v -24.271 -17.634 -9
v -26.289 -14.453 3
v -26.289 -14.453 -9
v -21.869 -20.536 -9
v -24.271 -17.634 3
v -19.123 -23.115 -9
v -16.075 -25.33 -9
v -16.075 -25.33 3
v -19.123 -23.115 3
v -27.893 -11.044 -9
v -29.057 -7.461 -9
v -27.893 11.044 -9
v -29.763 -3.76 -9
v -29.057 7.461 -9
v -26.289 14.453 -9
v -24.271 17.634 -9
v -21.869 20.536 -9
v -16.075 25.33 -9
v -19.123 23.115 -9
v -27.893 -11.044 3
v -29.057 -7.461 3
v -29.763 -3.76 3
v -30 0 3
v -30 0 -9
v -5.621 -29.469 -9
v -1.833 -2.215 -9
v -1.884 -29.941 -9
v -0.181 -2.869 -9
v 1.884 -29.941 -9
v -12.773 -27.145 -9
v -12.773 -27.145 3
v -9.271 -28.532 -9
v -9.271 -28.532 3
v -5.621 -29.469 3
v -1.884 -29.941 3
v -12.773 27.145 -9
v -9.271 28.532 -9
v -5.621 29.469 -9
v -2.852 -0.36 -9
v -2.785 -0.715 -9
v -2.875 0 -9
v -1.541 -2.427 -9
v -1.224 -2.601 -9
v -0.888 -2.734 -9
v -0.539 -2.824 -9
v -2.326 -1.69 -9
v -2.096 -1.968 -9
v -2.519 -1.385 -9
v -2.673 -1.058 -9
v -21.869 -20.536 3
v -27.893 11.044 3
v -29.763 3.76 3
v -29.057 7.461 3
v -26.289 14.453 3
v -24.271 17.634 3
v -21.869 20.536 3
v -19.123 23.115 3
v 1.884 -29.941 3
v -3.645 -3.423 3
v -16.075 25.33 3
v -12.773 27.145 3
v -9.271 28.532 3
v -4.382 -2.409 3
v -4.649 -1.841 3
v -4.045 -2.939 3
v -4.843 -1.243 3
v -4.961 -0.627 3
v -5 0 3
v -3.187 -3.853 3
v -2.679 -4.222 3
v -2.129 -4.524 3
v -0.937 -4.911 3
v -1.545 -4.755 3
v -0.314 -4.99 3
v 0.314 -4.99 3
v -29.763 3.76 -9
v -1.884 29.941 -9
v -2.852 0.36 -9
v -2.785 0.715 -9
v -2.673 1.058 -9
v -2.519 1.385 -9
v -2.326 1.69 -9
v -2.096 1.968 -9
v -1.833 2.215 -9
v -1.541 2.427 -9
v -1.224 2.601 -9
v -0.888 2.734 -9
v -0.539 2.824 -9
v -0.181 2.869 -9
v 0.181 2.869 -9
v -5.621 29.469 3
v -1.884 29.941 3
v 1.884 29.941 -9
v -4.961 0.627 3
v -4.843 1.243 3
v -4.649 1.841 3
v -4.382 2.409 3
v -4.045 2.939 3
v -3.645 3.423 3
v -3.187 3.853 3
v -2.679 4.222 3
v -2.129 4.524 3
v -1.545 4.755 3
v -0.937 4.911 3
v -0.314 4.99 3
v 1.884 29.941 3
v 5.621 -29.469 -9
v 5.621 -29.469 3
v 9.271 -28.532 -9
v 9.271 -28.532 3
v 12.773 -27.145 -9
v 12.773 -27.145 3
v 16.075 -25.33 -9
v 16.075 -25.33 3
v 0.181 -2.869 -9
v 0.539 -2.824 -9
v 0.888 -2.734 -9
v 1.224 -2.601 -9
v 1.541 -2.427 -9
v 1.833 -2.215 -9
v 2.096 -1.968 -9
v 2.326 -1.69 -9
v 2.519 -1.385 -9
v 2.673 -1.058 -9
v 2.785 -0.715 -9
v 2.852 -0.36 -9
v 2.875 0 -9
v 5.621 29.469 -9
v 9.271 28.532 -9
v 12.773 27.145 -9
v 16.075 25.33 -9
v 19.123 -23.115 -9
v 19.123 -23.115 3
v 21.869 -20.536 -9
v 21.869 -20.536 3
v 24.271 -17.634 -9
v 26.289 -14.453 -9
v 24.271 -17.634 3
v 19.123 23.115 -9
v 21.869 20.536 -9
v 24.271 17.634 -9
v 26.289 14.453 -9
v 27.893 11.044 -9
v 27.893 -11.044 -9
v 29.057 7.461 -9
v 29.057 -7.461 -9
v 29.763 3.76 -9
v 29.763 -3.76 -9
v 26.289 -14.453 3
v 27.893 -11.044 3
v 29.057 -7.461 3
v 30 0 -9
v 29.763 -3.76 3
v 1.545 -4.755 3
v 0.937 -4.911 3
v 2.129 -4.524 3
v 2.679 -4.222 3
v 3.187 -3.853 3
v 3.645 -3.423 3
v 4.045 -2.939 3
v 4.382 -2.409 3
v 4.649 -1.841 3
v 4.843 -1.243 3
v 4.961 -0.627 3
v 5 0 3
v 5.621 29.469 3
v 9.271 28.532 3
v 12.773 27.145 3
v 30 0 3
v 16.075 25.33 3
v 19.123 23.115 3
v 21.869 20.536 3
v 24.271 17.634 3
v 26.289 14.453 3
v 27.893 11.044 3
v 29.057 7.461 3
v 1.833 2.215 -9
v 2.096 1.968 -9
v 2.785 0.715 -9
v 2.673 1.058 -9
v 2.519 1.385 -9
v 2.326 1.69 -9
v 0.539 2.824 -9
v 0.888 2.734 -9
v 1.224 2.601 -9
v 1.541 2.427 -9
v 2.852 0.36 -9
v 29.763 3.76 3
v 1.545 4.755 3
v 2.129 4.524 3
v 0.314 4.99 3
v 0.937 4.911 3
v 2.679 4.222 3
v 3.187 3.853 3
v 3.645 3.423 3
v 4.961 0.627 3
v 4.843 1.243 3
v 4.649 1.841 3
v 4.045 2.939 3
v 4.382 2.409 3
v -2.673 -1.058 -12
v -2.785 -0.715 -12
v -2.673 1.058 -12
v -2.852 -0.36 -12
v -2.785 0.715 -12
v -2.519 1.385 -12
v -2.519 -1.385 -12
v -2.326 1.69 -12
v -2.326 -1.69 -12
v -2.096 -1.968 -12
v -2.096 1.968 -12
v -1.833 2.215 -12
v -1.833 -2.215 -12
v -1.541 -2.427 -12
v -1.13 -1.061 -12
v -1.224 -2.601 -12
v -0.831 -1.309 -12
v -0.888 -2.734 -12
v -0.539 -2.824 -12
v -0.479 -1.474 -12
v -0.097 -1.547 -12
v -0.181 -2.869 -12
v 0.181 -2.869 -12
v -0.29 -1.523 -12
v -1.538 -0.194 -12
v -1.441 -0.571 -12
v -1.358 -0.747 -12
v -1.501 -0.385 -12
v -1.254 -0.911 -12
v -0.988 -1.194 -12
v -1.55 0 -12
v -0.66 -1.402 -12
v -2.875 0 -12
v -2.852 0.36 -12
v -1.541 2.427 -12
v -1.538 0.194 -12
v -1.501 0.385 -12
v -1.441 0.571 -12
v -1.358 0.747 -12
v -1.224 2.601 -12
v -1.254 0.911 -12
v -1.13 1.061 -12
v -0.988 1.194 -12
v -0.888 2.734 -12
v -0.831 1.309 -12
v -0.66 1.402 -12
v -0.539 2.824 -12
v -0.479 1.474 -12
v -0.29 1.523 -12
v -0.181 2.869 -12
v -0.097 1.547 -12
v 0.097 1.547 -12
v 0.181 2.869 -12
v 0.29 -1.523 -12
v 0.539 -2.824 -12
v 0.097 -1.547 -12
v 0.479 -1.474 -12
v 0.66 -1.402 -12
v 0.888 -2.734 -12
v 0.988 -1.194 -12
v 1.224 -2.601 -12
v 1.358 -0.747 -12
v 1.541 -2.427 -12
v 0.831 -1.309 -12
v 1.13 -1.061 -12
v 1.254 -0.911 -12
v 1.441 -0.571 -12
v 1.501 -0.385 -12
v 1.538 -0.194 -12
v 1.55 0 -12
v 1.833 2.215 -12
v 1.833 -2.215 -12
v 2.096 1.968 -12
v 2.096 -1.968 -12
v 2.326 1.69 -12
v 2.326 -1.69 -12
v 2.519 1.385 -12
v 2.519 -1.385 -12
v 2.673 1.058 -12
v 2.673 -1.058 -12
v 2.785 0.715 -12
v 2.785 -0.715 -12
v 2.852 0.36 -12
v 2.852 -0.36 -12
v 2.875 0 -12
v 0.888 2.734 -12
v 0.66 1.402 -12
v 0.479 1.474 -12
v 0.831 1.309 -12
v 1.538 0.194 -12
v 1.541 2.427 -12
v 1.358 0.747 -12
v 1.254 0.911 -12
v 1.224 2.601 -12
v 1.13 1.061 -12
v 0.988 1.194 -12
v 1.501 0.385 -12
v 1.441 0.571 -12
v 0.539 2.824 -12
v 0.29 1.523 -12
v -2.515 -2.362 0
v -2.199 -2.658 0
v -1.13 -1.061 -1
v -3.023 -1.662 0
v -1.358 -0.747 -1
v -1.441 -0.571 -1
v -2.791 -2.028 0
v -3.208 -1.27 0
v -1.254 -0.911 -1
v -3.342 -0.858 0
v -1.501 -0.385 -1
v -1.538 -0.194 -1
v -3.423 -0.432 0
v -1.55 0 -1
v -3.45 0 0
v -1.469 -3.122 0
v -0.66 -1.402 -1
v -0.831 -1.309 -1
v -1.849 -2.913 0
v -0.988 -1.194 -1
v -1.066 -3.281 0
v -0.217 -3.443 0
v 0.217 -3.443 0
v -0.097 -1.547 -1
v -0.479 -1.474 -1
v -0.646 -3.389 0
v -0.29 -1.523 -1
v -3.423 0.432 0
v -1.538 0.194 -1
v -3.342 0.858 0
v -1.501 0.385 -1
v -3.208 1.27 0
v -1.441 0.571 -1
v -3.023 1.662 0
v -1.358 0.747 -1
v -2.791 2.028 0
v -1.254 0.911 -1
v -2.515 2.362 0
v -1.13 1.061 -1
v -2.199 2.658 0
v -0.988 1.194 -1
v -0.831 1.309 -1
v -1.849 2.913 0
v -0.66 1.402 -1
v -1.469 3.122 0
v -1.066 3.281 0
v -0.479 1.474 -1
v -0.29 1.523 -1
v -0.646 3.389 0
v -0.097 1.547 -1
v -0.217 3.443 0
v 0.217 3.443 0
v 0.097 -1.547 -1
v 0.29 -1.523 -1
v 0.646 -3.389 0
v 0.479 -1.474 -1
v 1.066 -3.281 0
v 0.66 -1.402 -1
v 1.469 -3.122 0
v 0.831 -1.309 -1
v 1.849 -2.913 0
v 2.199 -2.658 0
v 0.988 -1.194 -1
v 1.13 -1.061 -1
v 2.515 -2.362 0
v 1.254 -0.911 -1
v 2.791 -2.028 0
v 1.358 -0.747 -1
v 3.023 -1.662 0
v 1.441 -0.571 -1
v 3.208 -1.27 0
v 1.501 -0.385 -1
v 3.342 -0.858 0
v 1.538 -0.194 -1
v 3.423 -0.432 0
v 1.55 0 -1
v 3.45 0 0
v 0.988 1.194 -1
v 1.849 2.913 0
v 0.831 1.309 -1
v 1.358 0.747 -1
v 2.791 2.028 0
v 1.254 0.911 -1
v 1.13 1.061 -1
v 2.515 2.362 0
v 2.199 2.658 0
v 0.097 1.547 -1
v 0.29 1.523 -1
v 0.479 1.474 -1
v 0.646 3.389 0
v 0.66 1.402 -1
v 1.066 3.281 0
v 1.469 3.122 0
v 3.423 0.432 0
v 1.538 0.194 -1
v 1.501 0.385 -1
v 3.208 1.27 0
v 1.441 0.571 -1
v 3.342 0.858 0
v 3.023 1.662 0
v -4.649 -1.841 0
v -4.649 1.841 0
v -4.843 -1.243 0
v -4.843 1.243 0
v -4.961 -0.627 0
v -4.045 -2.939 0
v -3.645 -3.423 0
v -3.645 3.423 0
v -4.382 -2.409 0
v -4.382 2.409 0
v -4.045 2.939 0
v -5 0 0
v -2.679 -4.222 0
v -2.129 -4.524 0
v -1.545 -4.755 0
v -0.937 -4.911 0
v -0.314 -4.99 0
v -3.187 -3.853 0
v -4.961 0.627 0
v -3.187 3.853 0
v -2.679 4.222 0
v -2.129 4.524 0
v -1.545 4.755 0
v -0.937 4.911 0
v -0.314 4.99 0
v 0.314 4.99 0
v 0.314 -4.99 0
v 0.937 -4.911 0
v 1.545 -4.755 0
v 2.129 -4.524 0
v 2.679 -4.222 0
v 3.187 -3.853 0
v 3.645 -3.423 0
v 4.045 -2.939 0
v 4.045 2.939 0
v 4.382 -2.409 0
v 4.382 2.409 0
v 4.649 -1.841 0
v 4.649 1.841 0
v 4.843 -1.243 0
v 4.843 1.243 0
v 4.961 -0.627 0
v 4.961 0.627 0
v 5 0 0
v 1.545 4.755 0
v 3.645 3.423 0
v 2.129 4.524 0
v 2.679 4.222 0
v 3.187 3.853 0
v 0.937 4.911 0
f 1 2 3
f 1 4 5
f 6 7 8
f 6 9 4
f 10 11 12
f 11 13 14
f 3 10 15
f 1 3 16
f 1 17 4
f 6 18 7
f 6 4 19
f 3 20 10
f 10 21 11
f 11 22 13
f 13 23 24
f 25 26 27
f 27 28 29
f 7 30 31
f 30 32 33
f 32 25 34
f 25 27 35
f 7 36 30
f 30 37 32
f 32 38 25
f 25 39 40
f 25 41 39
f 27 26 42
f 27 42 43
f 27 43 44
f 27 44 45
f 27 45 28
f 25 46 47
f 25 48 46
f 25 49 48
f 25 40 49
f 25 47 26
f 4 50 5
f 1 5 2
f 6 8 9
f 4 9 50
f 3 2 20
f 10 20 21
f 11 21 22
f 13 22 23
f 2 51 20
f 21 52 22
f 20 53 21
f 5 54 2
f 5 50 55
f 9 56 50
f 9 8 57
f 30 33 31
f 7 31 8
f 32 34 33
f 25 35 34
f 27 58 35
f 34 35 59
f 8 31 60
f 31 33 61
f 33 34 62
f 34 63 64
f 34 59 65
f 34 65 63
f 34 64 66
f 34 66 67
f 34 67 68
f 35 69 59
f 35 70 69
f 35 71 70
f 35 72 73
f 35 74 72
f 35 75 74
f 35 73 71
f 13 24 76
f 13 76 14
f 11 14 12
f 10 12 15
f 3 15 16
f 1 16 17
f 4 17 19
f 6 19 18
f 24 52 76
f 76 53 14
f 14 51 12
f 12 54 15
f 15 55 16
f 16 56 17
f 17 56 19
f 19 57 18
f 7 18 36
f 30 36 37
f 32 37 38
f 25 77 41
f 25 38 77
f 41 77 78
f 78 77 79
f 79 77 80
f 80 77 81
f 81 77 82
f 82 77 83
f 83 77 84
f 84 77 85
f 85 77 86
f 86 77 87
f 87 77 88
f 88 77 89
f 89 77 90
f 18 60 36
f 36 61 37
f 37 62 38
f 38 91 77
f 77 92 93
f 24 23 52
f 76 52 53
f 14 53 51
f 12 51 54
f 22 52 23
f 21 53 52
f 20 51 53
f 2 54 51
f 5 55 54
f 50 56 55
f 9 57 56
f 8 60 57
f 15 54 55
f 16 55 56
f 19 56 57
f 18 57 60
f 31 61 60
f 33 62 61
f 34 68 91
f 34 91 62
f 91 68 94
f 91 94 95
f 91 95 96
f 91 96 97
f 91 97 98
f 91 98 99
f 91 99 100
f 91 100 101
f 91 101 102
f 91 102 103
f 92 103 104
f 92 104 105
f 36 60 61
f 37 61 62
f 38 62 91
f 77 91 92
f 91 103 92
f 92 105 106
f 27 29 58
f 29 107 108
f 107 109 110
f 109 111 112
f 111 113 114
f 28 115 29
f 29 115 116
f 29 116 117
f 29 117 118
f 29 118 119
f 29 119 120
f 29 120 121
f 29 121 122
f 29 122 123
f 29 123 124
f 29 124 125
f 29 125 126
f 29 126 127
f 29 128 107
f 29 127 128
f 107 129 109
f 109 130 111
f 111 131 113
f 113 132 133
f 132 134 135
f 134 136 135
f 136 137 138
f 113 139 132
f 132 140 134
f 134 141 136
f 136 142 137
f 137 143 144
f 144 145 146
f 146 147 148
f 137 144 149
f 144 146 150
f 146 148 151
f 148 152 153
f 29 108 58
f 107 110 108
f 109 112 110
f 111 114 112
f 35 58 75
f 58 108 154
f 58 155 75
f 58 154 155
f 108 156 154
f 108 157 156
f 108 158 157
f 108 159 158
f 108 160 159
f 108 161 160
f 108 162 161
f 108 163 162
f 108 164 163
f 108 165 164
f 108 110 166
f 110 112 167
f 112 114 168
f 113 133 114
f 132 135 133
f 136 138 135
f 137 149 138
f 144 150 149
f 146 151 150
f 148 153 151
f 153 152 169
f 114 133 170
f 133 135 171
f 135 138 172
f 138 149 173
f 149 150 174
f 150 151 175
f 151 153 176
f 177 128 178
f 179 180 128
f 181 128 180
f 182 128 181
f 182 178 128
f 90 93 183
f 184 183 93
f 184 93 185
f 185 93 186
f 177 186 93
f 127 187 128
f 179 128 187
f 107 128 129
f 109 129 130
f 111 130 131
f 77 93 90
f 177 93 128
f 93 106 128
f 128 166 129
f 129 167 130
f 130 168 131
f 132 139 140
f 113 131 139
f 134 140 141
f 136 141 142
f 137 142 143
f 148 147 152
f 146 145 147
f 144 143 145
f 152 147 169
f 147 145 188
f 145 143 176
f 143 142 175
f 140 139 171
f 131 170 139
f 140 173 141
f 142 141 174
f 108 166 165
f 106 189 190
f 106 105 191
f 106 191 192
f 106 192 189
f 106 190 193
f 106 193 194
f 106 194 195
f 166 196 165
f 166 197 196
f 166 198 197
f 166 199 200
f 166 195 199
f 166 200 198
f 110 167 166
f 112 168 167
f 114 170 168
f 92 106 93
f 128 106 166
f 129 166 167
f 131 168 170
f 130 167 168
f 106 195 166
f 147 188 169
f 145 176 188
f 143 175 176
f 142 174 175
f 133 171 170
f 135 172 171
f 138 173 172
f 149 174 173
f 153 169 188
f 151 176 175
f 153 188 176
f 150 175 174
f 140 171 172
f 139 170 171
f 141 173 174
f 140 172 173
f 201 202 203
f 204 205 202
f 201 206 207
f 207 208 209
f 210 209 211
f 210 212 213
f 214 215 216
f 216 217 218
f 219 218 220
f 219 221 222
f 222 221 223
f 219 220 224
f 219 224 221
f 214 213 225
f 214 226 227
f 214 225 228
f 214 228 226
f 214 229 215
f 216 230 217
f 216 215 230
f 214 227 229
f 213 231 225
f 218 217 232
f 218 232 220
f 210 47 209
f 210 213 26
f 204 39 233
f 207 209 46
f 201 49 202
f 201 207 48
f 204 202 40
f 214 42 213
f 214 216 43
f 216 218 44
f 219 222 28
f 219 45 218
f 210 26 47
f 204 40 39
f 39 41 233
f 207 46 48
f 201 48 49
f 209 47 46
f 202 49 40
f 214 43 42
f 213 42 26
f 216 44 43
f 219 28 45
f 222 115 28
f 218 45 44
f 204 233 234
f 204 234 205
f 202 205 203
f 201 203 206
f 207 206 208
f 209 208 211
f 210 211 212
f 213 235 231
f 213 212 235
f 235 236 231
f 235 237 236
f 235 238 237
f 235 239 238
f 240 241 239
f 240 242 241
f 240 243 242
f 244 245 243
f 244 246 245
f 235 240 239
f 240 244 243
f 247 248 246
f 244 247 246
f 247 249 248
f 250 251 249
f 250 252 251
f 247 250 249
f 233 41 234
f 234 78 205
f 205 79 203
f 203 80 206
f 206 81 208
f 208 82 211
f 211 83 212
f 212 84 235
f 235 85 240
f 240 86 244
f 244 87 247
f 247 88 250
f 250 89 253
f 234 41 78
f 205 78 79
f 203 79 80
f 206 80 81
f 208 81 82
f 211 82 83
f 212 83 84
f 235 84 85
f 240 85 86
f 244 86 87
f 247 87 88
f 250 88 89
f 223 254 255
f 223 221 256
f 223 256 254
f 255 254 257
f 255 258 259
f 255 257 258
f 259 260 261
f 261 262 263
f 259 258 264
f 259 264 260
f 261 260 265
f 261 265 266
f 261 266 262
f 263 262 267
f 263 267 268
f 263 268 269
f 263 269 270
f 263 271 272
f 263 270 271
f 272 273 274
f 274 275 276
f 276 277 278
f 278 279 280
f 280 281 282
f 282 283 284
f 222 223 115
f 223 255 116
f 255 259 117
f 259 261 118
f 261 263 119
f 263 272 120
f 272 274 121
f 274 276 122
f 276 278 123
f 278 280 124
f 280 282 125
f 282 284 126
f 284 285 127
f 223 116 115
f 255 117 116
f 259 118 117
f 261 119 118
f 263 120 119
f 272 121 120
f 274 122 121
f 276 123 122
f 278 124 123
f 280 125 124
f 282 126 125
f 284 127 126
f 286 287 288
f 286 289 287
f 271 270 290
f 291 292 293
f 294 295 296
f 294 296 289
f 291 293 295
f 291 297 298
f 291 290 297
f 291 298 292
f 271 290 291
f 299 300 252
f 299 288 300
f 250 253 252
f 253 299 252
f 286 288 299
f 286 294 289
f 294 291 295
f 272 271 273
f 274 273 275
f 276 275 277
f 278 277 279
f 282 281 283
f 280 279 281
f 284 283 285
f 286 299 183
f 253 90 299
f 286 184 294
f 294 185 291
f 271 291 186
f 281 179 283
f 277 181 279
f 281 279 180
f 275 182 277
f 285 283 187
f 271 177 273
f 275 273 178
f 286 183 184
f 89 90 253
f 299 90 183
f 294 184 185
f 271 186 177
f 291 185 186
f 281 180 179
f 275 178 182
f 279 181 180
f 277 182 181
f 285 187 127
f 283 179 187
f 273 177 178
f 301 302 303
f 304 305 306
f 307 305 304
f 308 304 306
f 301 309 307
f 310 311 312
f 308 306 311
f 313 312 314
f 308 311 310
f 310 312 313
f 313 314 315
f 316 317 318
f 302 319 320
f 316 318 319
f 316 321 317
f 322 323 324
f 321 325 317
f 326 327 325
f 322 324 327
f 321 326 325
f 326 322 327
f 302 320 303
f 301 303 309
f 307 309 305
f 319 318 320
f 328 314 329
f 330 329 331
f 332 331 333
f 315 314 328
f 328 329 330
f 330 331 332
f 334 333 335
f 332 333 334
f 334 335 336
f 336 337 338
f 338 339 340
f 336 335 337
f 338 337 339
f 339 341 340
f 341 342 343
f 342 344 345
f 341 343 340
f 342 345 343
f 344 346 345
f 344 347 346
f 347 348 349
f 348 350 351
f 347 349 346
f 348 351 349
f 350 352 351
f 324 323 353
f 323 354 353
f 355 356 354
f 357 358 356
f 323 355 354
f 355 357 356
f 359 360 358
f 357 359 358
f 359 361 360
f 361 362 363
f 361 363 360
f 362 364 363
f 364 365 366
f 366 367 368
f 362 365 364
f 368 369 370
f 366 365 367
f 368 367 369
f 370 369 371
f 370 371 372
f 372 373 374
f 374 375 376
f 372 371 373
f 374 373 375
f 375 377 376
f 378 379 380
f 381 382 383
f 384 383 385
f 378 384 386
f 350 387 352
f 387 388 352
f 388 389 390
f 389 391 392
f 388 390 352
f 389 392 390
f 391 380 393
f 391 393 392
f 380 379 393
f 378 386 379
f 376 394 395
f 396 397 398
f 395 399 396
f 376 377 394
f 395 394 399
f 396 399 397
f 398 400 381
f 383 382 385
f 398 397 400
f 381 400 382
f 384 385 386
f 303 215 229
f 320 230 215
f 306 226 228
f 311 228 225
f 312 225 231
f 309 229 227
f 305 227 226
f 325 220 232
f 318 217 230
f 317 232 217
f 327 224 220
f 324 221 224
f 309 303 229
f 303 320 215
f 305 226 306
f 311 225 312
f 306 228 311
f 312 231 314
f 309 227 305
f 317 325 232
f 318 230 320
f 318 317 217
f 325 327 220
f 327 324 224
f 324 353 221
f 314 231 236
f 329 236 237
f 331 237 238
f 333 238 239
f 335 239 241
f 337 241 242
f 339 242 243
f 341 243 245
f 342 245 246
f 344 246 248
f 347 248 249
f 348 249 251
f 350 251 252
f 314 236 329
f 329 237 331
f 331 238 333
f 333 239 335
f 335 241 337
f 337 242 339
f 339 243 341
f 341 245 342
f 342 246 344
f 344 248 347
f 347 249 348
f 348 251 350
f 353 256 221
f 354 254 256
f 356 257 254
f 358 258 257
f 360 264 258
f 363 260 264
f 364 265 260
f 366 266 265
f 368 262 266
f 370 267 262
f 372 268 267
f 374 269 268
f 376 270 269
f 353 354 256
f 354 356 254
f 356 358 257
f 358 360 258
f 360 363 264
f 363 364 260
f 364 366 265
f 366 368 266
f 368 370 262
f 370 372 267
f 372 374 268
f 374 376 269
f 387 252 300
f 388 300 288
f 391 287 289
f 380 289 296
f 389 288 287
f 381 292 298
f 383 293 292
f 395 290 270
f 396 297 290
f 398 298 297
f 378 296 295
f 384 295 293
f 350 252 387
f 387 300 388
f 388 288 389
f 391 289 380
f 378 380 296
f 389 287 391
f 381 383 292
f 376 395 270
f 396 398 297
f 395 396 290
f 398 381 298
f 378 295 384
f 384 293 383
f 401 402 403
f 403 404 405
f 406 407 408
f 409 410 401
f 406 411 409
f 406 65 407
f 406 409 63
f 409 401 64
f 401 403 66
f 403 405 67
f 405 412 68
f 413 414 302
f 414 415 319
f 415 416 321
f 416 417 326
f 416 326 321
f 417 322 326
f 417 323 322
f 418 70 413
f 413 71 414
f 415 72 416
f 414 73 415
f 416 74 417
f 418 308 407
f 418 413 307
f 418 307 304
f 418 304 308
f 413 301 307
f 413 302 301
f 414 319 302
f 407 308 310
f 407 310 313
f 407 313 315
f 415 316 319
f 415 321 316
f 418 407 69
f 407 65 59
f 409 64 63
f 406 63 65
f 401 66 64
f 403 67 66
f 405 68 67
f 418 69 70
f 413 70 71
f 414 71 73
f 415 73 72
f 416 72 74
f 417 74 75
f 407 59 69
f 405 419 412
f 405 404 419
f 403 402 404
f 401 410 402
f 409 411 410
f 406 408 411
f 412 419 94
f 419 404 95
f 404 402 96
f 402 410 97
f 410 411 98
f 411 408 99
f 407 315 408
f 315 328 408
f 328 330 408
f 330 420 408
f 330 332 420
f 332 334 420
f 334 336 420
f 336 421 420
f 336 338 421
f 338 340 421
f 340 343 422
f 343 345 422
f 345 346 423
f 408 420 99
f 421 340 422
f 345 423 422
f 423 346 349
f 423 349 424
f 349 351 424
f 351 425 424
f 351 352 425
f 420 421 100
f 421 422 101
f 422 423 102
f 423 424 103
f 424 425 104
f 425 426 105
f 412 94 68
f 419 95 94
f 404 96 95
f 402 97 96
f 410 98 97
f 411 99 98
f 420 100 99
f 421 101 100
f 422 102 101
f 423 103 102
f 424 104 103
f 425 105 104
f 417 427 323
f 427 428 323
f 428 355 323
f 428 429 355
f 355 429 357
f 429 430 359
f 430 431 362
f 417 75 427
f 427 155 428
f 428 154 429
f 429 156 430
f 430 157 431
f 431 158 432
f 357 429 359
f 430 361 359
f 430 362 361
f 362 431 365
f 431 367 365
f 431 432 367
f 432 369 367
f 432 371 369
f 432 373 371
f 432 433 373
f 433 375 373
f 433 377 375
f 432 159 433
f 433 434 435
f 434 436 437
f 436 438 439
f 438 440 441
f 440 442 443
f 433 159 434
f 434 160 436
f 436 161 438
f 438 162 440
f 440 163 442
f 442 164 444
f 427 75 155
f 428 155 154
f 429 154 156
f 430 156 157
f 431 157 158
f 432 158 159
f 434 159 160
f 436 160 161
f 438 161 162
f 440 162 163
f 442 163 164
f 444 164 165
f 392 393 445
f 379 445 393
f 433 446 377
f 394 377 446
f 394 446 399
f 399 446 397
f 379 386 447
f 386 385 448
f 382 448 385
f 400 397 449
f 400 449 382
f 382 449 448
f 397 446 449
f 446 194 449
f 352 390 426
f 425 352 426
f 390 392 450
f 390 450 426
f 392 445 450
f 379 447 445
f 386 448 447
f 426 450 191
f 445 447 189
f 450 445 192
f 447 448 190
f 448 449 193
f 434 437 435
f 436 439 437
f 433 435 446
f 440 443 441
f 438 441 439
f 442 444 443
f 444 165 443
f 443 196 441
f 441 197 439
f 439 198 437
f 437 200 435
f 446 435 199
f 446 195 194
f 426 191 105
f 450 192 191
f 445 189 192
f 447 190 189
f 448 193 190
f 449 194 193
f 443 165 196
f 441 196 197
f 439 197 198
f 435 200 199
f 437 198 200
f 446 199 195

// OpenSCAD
$fn = 50;

difference() {
	union() {
		translate(v = [0, 0, -9.0]) {
			cylinder(h = 12, r = 30.0);
		}
		#translate(v = [0, 0, -12.0]) {
			cylinder(h = 12, r = 2.875);
		}
	}
	union() {
		translate(v = [0, 0, 0]) {
			rotate(a = [0, 0, 0]) {
				difference() {
					union() {
						translate(v = [0, 0, -12.0]) {
							cylinder(h = 12, r = 1.25);
						}
						translate(v = [0, 0, -1.0]) {
							cylinder(h = 1.0, r1 = 1.55, r2 = 3.45);
						}
						translate(v = [0, 0, -12.0]) {
							cylinder(h = 12, r = 1.55);
						}
						translate(v = [0, 0, -12.0]) {
							cylinder(h = 12, r = 1.25);
						}
					}
					union();
				}
			}
		}
		#cylinder(h = 3, r = 5.0);
	}
}
